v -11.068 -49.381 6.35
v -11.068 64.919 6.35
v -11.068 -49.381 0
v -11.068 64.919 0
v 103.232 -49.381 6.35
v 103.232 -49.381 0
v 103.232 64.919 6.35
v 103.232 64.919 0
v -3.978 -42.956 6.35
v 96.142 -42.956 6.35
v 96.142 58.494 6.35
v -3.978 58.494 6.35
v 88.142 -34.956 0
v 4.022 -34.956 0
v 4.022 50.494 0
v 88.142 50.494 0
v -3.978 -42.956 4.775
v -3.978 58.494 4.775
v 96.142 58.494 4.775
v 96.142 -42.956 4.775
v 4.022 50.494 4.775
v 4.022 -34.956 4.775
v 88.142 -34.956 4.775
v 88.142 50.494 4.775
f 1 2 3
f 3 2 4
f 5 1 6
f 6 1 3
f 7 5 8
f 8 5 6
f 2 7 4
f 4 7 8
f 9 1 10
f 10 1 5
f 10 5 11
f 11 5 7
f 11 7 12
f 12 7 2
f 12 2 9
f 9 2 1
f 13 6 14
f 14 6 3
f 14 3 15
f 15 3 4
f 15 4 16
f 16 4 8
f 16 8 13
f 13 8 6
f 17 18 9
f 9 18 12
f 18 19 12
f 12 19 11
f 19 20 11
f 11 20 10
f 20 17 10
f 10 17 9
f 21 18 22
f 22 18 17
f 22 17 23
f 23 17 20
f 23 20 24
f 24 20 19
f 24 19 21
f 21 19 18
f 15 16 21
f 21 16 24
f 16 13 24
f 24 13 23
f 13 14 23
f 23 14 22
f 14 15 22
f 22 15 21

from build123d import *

# Parameters (mm, degrees)
SKETCH1_W               = 114.3
SKETCH1_H               = 114.3
BOSS_EXTRUDE1_DEPTH     = 6.35
SKETCH2_W               = 100.12
SKETCH2_H               = 101.45
CUT_EXTRUDE1_DEPTH      = 1.5748
SKETCH4_W               = 84.12
SKETCH4_H               = 85.45
CUT_EXTRUDE3_DEPTH      = 2.5748
CUT_EXTRUDE3_DEPTH_BACK = 5.7752


with BuildPart() as part:
    # Sketch1 → Boss-Extrude1 (new body)
    with BuildSketch(Plane.XY):
        with Locations((46.081843575, 7.768994413)):
            Rectangle(SKETCH1_W, SKETCH1_H)
    extrude(amount=BOSS_EXTRUDE1_DEPTH)

    # Sketch2 → Cut-Extrude1 (cut)
    with BuildSketch(Plane.XY.offset(6.35)):
        with Locations((46.081843575, 7.768994413)):
            Rectangle(SKETCH2_W, SKETCH2_H)
    extrude(amount=-CUT_EXTRUDE1_DEPTH, mode=Mode.SUBTRACT)

    # Sketch4 → Cut-Extrude3 (cut, two sides)
    with BuildSketch(Plane.XY.offset(4.7752)) as cut_extrude3_sk:
        with Locations((46.081843575, 7.768994413)):
            Rectangle(SKETCH4_W, SKETCH4_H)
    extrude(amount=CUT_EXTRUDE3_DEPTH, mode=Mode.SUBTRACT)
    extrude(cut_extrude3_sk.sketch, amount=-CUT_EXTRUDE3_DEPTH_BACK, mode=Mode.SUBTRACT)


solid = part.part
